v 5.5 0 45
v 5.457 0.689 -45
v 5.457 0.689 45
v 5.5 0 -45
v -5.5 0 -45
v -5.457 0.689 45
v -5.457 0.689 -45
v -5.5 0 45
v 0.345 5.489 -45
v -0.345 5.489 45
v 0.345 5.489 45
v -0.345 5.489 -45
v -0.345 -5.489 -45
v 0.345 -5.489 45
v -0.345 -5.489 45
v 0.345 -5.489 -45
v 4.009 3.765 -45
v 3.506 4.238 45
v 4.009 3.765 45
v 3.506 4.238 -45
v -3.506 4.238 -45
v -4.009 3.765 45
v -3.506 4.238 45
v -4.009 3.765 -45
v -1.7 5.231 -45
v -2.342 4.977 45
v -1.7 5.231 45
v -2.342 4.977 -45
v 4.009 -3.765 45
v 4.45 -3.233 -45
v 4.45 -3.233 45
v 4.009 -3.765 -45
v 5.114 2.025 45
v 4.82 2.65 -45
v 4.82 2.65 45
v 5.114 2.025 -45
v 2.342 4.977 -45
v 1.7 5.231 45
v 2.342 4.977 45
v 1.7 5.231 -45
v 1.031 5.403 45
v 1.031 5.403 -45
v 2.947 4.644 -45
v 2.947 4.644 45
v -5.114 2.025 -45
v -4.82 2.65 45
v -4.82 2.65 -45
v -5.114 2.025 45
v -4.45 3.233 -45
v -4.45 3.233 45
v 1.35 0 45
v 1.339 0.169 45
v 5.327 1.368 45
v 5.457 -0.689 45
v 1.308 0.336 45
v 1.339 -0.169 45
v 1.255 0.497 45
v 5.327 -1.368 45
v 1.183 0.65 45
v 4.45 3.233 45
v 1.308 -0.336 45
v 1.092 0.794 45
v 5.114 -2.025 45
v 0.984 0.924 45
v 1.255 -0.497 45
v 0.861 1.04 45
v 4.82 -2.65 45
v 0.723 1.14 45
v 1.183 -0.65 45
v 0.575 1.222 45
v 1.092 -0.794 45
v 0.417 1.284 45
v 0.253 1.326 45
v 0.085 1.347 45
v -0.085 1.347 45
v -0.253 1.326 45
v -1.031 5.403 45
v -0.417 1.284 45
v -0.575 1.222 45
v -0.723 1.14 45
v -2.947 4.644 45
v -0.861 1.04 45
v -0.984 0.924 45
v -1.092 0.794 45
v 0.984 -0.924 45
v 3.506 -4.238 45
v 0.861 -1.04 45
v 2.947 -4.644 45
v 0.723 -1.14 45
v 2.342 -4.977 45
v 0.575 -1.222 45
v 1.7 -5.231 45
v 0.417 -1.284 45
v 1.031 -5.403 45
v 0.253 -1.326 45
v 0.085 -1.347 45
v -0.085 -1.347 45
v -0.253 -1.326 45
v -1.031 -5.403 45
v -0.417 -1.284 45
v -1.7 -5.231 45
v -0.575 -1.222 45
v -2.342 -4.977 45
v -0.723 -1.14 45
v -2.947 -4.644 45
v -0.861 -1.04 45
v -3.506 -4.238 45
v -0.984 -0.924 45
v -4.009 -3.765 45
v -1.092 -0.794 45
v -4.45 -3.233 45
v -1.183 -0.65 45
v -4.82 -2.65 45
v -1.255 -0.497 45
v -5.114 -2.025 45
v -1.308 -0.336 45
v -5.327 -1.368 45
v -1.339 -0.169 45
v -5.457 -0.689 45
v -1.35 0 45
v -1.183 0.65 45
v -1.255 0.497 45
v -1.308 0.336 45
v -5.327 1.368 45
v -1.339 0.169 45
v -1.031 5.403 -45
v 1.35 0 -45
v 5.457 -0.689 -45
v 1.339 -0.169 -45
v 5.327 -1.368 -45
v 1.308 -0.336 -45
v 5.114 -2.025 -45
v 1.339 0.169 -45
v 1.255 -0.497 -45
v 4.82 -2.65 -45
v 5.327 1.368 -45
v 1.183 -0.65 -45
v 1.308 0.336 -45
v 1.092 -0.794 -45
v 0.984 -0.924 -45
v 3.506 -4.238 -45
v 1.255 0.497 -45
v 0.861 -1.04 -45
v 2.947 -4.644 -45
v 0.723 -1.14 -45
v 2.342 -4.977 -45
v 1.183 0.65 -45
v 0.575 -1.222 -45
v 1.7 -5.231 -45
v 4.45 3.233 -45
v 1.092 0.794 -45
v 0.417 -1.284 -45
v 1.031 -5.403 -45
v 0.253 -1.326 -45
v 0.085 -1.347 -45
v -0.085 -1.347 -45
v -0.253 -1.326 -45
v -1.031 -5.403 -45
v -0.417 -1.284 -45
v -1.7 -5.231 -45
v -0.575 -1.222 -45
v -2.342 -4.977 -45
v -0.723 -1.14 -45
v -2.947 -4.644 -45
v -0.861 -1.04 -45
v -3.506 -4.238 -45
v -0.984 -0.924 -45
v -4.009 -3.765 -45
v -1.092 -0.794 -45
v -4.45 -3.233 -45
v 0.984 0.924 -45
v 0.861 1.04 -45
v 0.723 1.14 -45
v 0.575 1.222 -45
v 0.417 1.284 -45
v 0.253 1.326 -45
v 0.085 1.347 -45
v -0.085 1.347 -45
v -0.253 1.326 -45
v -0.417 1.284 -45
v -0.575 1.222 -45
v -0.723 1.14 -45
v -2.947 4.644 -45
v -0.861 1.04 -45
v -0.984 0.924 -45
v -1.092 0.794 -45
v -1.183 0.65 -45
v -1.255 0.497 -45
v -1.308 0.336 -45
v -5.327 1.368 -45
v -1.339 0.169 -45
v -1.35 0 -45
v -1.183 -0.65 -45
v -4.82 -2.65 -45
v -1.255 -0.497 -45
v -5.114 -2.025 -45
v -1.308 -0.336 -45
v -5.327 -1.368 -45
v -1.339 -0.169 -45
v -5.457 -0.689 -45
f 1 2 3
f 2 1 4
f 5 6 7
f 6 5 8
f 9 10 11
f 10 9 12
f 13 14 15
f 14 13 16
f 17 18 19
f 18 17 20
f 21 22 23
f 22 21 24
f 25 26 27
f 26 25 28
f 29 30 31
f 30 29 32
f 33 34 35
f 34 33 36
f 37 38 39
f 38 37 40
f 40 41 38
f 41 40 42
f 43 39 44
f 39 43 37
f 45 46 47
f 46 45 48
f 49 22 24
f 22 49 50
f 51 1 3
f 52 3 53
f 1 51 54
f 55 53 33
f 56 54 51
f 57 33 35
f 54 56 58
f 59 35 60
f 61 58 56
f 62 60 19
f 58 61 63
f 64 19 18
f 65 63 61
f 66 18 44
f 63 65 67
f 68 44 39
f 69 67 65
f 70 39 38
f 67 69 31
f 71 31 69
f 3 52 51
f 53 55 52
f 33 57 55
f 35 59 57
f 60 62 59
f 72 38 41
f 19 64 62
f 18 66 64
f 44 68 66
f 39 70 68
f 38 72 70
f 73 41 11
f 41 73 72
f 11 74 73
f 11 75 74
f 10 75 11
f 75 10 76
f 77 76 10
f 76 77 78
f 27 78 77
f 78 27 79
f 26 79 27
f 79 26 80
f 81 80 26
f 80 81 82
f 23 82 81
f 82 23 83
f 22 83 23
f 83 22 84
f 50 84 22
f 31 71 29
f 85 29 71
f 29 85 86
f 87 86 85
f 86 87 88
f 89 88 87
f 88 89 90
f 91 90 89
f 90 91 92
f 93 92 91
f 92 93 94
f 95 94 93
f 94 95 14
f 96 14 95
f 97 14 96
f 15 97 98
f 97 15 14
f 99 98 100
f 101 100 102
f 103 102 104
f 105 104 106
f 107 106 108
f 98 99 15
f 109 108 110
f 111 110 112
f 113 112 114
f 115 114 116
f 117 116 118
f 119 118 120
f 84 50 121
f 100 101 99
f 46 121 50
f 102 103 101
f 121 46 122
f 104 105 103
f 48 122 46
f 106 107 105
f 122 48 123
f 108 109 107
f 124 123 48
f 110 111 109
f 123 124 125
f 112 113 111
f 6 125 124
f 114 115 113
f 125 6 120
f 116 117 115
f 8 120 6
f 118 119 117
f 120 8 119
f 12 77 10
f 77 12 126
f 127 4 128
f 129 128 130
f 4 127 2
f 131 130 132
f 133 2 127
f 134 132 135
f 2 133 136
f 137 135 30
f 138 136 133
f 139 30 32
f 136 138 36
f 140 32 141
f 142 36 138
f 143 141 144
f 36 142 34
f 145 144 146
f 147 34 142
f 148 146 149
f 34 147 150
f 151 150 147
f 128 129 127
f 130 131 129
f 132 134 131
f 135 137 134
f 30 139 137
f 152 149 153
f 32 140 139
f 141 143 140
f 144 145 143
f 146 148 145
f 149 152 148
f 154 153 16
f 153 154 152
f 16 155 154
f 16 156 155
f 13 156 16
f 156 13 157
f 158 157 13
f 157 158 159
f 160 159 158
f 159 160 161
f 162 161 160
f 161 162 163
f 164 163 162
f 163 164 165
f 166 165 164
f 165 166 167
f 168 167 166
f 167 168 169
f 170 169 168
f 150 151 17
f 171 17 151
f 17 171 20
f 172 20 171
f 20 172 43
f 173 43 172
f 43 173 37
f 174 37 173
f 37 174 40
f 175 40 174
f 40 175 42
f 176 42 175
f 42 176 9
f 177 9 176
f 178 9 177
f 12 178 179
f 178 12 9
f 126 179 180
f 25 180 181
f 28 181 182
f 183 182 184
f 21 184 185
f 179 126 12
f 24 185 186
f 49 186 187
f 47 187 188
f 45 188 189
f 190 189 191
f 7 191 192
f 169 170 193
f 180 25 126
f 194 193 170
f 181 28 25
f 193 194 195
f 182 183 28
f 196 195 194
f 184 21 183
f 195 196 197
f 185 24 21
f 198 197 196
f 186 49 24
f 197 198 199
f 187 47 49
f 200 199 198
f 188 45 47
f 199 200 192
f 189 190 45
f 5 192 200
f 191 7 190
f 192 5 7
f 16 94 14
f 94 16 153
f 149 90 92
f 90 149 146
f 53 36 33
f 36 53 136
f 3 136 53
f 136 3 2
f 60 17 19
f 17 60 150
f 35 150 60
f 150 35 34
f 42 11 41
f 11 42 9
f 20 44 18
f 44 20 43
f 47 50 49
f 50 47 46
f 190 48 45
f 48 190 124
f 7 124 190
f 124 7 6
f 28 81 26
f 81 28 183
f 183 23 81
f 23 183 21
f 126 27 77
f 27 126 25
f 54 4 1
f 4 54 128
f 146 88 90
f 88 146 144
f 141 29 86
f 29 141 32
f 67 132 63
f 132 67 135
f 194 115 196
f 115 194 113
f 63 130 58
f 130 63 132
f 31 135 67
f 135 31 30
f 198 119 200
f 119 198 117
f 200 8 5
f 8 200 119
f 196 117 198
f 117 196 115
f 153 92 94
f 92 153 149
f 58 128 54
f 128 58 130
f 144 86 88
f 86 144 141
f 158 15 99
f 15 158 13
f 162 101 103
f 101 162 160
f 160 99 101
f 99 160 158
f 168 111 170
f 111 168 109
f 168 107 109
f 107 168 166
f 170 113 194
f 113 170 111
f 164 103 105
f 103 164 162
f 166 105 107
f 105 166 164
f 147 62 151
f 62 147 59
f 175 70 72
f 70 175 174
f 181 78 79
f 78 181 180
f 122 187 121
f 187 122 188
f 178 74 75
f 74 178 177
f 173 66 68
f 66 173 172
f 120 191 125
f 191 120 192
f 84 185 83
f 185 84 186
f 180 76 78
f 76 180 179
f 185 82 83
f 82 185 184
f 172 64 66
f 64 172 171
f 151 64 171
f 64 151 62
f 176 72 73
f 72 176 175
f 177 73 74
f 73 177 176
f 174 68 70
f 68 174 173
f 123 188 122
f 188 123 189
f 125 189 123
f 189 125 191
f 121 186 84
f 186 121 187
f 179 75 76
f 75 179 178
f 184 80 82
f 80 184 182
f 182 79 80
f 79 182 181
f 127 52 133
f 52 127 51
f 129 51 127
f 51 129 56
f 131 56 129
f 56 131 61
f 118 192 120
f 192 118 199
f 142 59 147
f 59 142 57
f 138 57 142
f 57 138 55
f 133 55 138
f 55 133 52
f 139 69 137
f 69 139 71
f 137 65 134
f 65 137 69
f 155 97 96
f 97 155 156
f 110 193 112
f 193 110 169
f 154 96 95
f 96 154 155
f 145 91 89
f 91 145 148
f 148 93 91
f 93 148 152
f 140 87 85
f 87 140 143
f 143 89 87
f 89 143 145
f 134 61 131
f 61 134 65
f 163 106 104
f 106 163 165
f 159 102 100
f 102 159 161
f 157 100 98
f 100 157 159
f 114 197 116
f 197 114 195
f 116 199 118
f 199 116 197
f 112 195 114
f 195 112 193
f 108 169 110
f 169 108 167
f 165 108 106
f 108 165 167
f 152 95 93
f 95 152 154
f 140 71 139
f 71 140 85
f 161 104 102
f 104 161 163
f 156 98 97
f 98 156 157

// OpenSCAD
$fn = 50;


difference() {
	union() {
		translate(v = [0, 0, -45.0000000000]) {
			cylinder(h = 90, r = 5.5000000000);
		}
	}
	union() {
		translate(v = [0, 0, -100.0000000000]) {
			cylinder(h = 200, r = 1.3500000000);
		}
	}
}
